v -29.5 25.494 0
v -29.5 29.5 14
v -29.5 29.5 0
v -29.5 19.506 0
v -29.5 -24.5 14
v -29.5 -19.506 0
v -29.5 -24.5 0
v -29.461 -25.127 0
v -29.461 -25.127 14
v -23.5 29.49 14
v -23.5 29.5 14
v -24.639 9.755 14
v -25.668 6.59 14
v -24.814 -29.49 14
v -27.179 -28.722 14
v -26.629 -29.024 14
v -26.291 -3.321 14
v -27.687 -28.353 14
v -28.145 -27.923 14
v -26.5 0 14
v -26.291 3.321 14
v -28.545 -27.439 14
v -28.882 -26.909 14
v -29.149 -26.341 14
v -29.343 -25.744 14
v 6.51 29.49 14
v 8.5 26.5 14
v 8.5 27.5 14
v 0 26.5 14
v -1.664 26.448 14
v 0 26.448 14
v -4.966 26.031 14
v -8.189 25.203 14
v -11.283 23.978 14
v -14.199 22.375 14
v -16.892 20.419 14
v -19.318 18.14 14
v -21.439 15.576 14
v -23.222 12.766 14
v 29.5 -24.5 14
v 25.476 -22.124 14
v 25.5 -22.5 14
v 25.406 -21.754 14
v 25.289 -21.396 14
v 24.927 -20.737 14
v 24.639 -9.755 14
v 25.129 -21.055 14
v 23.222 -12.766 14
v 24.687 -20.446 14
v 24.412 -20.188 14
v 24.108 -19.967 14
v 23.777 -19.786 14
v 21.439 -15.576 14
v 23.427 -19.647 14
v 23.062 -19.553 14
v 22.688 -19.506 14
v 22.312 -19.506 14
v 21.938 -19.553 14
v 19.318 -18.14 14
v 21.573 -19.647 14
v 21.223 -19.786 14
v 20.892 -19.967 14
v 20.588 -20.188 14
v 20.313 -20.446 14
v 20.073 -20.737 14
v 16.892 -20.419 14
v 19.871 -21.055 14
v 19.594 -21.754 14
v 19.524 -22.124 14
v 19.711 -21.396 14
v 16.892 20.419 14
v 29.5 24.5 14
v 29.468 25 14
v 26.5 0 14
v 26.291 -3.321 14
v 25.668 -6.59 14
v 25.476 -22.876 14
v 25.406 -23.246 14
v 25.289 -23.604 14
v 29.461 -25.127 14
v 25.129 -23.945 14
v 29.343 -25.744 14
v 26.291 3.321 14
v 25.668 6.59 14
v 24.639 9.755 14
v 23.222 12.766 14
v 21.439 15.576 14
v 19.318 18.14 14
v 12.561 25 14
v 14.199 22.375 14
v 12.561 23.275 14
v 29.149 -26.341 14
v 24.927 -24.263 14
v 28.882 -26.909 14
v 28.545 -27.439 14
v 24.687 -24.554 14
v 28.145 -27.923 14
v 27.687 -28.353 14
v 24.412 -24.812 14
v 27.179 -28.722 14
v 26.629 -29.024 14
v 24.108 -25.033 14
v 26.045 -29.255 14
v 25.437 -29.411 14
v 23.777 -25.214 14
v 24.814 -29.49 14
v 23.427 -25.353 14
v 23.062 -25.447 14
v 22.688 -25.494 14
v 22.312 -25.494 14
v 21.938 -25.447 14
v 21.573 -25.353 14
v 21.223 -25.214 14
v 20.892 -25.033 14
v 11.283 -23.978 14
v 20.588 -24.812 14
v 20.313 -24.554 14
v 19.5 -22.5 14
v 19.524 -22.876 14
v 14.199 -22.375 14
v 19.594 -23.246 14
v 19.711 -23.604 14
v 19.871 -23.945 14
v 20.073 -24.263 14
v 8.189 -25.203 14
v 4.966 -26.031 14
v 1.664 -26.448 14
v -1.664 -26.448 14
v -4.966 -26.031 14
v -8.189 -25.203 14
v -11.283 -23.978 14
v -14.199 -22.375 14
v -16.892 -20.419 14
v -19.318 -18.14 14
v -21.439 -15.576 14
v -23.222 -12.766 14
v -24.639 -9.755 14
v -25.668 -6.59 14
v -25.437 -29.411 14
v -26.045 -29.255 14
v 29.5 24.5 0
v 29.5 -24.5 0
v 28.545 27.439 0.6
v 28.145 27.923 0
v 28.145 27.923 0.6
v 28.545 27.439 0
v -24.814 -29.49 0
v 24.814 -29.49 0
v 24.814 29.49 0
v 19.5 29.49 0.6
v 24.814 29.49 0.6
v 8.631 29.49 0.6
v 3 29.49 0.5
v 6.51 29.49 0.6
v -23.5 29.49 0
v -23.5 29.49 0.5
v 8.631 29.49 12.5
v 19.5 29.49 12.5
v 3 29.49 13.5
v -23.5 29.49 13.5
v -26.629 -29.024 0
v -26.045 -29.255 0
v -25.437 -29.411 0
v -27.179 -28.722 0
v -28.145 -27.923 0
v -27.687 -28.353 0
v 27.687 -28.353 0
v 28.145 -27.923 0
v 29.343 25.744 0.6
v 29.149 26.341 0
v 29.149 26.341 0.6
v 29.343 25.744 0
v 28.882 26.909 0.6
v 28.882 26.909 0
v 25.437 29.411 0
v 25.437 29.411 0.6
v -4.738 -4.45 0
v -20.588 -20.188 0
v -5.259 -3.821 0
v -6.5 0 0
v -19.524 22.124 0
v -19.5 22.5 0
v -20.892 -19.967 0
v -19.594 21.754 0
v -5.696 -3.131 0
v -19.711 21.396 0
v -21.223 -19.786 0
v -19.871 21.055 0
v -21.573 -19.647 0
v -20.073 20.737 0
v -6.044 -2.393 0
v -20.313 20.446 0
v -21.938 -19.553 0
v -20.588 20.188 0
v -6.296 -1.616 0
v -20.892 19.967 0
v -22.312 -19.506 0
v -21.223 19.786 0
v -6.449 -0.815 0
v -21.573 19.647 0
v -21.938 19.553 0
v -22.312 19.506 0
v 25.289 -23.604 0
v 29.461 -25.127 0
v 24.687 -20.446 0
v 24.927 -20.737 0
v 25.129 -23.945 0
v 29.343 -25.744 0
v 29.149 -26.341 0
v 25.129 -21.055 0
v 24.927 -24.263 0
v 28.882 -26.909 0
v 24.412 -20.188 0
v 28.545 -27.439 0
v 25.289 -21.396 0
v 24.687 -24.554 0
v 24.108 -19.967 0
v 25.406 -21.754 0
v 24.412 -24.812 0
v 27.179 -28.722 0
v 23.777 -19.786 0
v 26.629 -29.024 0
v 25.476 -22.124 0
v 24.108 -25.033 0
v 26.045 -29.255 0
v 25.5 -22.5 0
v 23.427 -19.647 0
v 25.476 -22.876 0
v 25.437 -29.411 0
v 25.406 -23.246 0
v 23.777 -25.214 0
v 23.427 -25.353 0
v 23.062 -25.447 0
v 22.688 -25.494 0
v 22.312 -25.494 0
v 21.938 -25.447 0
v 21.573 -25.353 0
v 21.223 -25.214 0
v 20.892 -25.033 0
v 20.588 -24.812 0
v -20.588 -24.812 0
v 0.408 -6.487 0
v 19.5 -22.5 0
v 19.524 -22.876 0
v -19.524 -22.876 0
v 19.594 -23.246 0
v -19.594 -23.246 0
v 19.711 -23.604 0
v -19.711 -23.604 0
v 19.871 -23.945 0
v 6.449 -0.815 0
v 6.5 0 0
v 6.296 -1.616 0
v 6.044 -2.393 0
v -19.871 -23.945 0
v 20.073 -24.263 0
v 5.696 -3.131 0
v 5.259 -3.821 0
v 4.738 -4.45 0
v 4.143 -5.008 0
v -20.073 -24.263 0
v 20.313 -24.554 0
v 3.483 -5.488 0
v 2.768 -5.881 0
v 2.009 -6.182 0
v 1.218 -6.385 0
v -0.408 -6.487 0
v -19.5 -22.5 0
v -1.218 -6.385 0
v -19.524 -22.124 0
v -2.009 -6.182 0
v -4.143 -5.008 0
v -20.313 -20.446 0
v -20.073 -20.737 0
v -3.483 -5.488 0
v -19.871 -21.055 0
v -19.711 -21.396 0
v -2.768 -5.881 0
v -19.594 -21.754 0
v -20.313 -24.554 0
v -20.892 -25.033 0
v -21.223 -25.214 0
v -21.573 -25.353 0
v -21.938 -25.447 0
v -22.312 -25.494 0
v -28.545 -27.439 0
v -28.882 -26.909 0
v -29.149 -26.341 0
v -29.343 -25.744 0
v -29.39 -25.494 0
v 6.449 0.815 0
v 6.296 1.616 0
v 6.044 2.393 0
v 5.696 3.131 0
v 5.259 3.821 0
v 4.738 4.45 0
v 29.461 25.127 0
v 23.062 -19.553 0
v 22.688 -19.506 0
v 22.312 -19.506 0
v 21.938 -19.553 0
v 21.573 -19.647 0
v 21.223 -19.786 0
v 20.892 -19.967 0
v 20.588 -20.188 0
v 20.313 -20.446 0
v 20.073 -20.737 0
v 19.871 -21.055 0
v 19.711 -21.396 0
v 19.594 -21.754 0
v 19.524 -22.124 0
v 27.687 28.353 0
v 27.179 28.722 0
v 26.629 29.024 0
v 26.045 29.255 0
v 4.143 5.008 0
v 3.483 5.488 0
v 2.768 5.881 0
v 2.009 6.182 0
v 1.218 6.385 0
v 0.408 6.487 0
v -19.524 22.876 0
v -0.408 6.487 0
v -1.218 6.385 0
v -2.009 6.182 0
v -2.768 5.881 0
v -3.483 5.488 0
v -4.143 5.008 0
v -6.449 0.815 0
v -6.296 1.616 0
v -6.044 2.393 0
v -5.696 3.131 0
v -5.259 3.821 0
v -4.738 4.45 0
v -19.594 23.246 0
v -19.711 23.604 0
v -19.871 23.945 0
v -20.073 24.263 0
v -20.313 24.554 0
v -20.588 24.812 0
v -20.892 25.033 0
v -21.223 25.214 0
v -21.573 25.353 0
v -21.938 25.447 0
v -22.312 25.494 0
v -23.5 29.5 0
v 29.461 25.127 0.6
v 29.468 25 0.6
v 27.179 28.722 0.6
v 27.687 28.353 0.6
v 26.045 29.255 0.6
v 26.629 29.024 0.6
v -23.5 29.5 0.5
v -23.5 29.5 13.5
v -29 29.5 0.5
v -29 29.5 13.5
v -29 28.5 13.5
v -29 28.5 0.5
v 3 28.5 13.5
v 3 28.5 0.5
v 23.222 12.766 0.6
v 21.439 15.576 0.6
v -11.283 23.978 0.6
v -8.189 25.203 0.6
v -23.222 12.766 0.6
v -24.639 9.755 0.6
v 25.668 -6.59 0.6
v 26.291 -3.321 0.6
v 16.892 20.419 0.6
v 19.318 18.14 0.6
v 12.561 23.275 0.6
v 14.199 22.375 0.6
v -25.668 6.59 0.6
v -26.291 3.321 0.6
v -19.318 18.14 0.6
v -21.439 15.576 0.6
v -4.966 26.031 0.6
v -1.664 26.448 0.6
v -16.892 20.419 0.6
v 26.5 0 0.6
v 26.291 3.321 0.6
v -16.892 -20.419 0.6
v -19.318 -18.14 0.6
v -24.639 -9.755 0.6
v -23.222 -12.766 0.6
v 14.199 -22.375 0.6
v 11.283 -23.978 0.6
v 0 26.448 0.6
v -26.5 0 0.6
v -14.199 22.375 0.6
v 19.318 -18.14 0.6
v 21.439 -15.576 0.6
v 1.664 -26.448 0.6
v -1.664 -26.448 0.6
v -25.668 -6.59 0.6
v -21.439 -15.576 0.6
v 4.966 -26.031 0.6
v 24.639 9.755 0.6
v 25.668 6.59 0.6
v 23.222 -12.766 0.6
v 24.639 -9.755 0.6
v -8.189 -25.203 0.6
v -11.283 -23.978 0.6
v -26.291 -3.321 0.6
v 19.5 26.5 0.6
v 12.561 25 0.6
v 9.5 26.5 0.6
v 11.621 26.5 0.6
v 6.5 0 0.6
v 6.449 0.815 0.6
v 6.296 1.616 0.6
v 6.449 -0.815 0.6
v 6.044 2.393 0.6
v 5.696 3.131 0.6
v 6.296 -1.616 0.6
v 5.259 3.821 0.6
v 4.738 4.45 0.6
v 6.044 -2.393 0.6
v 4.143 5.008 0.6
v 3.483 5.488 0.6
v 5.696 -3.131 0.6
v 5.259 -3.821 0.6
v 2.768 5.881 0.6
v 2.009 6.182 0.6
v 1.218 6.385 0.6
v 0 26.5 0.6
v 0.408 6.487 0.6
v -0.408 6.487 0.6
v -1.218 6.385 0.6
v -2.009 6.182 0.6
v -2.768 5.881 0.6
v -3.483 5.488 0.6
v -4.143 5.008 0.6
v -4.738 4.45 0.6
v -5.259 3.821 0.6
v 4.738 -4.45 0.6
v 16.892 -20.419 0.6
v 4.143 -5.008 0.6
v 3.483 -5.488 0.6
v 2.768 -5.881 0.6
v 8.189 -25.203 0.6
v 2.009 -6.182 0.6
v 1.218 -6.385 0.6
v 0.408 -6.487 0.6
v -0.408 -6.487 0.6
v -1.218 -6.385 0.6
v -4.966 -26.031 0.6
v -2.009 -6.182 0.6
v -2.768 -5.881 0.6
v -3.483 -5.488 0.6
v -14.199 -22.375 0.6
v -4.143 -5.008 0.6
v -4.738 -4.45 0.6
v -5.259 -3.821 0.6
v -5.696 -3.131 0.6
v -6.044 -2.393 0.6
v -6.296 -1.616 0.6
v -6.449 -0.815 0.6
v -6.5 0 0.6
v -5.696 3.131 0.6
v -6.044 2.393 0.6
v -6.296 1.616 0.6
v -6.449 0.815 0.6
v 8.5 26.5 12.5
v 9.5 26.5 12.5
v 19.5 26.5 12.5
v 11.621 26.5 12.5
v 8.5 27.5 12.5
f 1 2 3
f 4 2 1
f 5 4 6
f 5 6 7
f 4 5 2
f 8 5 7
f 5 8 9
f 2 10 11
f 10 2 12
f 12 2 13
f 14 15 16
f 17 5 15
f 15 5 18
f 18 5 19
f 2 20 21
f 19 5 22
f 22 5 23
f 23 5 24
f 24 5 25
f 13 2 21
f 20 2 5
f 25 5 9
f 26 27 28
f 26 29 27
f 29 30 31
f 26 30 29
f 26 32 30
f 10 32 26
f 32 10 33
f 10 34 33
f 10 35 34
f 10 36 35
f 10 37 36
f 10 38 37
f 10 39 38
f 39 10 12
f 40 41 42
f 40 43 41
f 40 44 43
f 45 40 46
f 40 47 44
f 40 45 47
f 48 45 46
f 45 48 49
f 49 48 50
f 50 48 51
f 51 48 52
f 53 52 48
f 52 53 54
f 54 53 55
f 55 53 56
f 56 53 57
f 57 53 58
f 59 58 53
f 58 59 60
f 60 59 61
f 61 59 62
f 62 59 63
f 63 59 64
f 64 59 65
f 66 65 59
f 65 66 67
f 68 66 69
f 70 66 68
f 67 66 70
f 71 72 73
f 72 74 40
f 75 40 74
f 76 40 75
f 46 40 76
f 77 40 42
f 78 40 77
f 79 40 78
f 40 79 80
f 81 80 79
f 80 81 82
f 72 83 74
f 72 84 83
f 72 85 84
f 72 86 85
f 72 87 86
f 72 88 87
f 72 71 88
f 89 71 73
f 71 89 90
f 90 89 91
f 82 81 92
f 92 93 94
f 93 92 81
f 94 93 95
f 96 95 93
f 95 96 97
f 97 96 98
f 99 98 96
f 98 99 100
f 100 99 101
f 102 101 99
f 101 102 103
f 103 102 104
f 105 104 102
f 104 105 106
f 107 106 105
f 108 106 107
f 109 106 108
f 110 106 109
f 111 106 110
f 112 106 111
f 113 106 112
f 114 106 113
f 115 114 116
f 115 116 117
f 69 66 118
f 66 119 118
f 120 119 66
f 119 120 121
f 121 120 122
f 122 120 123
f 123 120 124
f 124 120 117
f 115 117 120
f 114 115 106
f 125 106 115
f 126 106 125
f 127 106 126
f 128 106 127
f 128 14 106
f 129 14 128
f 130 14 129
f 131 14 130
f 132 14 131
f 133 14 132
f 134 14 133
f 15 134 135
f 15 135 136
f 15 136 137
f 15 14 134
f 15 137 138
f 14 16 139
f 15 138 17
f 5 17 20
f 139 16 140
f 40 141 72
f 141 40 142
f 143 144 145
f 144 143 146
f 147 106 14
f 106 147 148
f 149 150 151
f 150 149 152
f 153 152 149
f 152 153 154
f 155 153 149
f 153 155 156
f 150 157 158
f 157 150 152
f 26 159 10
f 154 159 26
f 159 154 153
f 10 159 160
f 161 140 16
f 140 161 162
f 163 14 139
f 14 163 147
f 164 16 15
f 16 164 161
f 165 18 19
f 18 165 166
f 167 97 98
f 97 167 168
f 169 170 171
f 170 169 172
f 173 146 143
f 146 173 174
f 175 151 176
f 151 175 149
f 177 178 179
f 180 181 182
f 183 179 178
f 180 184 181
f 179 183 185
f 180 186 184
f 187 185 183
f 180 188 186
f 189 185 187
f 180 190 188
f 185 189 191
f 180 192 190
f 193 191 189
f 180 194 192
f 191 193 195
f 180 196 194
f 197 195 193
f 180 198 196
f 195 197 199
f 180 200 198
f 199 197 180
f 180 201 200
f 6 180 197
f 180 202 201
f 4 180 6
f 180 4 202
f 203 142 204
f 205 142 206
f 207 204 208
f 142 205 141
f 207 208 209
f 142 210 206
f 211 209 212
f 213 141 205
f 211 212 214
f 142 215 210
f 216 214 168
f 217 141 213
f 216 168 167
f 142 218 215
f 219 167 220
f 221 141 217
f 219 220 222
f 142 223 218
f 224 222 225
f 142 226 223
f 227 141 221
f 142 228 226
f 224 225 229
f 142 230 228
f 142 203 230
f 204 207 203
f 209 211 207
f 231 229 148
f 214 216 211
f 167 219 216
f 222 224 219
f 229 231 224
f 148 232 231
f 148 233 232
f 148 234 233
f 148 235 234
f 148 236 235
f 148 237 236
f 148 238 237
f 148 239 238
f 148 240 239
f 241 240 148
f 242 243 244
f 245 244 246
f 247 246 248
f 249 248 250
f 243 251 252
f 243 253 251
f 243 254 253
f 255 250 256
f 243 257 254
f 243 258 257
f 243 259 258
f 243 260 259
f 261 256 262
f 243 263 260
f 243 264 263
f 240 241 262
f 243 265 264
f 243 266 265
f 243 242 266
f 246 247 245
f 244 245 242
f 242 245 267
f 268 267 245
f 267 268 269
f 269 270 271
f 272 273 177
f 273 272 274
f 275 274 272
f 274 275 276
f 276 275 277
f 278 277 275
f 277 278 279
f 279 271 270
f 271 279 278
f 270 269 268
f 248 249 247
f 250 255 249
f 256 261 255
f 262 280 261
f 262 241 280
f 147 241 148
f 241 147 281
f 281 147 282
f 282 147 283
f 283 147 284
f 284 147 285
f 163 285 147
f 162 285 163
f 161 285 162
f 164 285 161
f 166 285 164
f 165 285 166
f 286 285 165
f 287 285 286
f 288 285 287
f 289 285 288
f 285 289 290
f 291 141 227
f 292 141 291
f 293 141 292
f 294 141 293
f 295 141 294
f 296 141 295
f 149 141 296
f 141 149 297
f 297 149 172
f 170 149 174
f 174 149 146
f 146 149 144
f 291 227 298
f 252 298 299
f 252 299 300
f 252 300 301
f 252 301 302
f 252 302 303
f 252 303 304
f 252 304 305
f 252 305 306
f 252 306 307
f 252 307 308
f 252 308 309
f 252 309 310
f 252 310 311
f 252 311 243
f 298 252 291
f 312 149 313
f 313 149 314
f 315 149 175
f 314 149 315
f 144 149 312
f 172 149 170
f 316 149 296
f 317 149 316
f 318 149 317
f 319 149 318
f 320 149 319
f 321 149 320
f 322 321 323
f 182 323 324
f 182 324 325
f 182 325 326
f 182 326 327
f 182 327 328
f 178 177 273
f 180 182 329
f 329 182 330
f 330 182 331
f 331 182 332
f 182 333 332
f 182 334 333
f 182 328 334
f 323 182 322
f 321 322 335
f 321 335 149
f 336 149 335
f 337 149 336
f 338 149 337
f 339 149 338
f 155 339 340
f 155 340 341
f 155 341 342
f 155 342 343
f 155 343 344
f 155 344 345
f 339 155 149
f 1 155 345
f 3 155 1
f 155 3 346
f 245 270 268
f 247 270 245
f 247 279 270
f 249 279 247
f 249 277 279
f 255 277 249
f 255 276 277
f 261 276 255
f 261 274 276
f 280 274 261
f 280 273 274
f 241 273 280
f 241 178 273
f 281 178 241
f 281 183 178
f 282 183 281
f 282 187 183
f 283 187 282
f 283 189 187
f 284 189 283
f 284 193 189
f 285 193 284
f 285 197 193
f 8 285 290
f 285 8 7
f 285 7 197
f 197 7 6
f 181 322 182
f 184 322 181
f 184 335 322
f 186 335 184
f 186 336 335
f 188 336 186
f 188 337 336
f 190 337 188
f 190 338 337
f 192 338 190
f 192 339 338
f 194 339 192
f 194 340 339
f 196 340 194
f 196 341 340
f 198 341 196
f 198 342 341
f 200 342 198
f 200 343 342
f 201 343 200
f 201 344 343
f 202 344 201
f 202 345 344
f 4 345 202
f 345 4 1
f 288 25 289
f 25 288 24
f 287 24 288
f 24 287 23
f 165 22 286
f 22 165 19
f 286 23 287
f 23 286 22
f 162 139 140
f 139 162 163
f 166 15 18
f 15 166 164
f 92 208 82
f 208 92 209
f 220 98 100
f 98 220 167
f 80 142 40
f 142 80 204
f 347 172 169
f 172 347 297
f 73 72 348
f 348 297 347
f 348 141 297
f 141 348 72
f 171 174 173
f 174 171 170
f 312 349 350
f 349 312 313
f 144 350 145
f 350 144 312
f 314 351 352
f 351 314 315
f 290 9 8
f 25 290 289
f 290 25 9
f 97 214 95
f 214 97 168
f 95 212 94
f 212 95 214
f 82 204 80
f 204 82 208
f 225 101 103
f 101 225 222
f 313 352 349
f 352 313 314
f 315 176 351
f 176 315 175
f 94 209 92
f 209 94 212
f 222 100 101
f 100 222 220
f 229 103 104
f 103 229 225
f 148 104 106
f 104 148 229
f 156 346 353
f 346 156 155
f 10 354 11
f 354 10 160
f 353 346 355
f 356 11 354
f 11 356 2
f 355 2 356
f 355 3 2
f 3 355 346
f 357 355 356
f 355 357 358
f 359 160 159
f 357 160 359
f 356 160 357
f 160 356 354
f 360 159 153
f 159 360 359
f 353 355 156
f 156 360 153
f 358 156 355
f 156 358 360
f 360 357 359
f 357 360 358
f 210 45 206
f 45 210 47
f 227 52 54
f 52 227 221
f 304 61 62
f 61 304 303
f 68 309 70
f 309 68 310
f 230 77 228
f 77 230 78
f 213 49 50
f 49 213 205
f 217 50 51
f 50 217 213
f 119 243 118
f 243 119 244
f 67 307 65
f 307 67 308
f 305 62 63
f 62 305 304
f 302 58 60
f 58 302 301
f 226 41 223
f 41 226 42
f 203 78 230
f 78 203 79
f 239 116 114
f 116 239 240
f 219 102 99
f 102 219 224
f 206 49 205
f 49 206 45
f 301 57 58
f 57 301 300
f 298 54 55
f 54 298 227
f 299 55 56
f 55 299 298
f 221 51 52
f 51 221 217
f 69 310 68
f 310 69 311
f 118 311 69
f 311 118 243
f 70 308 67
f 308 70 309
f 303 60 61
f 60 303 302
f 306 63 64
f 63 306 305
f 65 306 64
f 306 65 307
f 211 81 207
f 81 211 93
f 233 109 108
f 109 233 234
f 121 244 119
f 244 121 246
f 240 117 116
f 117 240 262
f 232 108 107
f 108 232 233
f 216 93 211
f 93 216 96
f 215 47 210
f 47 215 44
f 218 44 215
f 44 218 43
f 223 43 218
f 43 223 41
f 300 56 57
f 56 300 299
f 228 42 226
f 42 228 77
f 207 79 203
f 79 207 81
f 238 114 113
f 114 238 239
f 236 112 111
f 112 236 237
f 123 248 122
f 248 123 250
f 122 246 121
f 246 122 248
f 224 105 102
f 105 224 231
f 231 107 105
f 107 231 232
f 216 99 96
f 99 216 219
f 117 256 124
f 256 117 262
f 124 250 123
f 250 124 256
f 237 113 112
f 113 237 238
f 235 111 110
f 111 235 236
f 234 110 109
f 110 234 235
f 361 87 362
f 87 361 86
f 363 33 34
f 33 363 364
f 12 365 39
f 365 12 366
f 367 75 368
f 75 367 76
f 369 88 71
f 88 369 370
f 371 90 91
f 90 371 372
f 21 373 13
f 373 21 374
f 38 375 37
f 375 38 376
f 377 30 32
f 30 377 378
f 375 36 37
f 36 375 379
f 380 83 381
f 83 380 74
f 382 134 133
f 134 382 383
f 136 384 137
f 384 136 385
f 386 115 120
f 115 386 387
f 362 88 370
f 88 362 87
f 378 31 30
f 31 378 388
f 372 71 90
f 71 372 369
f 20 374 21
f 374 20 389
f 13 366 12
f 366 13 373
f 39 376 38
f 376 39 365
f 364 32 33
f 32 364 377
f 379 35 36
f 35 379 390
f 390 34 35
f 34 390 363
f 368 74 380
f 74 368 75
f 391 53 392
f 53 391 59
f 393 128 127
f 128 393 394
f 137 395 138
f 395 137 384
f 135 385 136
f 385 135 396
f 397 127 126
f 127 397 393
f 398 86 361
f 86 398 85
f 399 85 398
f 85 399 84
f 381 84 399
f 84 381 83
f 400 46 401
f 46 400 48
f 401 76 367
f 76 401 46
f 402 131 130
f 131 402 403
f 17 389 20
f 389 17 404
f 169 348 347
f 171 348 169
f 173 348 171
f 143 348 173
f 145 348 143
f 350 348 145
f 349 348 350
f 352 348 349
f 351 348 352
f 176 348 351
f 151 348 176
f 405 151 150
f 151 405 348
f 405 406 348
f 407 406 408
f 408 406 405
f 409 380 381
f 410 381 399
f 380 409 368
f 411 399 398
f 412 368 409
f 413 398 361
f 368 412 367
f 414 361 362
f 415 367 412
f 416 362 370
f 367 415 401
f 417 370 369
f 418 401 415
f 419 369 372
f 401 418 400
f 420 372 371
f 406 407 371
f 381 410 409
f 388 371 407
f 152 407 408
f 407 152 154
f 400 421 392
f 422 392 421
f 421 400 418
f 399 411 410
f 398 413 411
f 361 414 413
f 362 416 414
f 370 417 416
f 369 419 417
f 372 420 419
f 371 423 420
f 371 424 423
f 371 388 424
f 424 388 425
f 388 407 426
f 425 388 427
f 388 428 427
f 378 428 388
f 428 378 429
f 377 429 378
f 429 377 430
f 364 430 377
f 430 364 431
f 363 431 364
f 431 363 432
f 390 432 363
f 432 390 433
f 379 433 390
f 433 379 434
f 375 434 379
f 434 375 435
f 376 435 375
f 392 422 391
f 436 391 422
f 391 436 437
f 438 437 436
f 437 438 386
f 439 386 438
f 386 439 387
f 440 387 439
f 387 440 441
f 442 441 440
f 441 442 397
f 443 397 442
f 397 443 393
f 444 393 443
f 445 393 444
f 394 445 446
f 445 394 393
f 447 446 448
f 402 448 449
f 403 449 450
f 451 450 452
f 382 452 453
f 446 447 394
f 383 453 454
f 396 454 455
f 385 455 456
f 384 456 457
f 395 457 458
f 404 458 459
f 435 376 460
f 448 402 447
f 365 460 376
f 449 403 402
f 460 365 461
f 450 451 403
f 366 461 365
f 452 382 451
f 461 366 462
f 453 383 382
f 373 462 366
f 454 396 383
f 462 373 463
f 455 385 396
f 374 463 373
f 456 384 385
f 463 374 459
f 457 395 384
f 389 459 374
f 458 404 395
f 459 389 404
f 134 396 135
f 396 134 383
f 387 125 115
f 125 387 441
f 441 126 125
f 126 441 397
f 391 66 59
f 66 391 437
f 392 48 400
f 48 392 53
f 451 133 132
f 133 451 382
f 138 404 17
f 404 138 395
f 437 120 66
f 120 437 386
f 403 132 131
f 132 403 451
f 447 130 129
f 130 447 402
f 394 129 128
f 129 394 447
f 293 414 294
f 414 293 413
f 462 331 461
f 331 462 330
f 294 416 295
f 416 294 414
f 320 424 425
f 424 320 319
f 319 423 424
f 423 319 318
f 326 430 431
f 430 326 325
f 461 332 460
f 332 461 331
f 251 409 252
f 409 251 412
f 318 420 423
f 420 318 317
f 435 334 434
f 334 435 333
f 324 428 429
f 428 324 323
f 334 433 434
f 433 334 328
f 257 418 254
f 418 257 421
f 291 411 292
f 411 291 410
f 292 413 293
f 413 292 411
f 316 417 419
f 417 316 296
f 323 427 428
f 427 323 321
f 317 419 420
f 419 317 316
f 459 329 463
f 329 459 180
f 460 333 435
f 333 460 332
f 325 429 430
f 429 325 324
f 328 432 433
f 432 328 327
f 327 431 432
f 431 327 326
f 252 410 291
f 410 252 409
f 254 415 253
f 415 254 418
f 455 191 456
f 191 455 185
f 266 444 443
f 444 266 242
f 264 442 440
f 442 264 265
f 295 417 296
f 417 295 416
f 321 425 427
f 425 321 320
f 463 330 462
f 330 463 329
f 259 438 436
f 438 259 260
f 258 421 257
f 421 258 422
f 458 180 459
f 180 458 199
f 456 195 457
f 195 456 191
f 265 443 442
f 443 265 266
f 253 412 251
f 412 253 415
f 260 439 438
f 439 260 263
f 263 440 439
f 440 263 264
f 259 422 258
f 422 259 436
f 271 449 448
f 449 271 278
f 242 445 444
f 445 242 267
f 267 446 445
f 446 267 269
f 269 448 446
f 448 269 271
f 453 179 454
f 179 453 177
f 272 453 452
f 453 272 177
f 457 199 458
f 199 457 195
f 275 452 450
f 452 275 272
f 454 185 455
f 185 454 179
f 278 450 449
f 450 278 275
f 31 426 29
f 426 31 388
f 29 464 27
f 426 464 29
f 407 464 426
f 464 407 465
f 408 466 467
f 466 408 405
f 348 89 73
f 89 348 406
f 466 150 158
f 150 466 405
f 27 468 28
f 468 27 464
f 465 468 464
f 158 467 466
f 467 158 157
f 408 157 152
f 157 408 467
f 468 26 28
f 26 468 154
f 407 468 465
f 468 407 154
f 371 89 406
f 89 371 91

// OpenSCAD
$fn = 50;


difference() {
	union() {
		hull() {
			translate(v = [-24.5000000000, 24.5000000000, 0]) {
				cylinder(h = 14, r = 5);
			}
			translate(v = [24.5000000000, 24.5000000000, 0]) {
				cylinder(h = 14, r = 5);
			}
			translate(v = [-24.5000000000, -24.5000000000, 0]) {
				cylinder(h = 14, r = 5);
			}
			translate(v = [24.5000000000, -24.5000000000, 0]) {
				cylinder(h = 14, r = 5);
			}
		}
		translate(v = [-29.5000000000, 23.5000000000, 0]) {
			cube(size = [6, 6, 14]);
		}
	}
	union() {
		translate(v = [-30.0000000000, -22.5000000000, -250.0000000000]) {
			rotate(a = [0, 0, 0]) {
				difference() {
					union() {
						hull() {
							translate(v = [7.5000000000, 0, 0]) {
								cylinder(h = 250, r = 3.0000000000, r1 = 3.0000000000, r2 = 3.0000000000);
							}
							translate(v = [-7.5000000000, 0, 0]) {
								cylinder(h = 250, r = 3.0000000000, r1 = 3.0000000000, r2 = 3.0000000000);
							}
						}
					}
					union();
				}
			}
		}
		translate(v = [-30.0000000000, 22.5000000000, -250.0000000000]) {
			rotate(a = [0, 0, 0]) {
				difference() {
					union() {
						hull() {
							translate(v = [7.5000000000, 0, 0]) {
								cylinder(h = 250, r = 3.0000000000, r1 = 3.0000000000, r2 = 3.0000000000);
							}
							translate(v = [-7.5000000000, 0, 0]) {
								cylinder(h = 250, r = 3.0000000000, r1 = 3.0000000000, r2 = 3.0000000000);
							}
						}
					}
					union();
				}
			}
		}
		translate(v = [-29.0000000000, 28.5000000000, 0.5000000000]) {
			cube(size = [32, 1, 13.0000000000]);
		}
		translate(v = [22.5000000000, -22.5000000000, -50.0000000000]) {
			cylinder(h = 100, r = 3.0000000000);
		}
		translate(v = [0, 0, 0.6000000000]) {
			cylinder(h = 16.4000000000, r = 26.5000000000);
		}
		translate(v = [0, 0, -7.0000000000]) {
			cylinder(h = 14, r = 6.5000000000);
		}
		translate(v = [0.0000000000, 25.0000000000, 0.6000000000]) {
			cube(size = [29.5000000000, 1.5000000000, 16.4000000000]);
		}
		translate(v = [19.5000000000, 25.0000000000, 0.6000000000]) {
			cube(size = [10, 4.5000000000, 16.4000000000]);
		}
		translate(v = [8.5000000000, 25.0000000000, 12.5000000000]) {
			cube(size = [21, 4.5000000000, 1.5000000000]);
		}
		translate(v = [5.7500000000, 30.2500000000, 0.6000000000]) {
			rotate(a = [0, 0, -45]) {
				cube(size = [7.5000000000, 1.5000000000, 16.4000000000]);
			}
		}
		translate(v = [5.0610000000, 23.0000000000, 0.6000000000]) {
			cube(size = [7.5000000000, 2, 13.4000000000]);
		}
	}
}
